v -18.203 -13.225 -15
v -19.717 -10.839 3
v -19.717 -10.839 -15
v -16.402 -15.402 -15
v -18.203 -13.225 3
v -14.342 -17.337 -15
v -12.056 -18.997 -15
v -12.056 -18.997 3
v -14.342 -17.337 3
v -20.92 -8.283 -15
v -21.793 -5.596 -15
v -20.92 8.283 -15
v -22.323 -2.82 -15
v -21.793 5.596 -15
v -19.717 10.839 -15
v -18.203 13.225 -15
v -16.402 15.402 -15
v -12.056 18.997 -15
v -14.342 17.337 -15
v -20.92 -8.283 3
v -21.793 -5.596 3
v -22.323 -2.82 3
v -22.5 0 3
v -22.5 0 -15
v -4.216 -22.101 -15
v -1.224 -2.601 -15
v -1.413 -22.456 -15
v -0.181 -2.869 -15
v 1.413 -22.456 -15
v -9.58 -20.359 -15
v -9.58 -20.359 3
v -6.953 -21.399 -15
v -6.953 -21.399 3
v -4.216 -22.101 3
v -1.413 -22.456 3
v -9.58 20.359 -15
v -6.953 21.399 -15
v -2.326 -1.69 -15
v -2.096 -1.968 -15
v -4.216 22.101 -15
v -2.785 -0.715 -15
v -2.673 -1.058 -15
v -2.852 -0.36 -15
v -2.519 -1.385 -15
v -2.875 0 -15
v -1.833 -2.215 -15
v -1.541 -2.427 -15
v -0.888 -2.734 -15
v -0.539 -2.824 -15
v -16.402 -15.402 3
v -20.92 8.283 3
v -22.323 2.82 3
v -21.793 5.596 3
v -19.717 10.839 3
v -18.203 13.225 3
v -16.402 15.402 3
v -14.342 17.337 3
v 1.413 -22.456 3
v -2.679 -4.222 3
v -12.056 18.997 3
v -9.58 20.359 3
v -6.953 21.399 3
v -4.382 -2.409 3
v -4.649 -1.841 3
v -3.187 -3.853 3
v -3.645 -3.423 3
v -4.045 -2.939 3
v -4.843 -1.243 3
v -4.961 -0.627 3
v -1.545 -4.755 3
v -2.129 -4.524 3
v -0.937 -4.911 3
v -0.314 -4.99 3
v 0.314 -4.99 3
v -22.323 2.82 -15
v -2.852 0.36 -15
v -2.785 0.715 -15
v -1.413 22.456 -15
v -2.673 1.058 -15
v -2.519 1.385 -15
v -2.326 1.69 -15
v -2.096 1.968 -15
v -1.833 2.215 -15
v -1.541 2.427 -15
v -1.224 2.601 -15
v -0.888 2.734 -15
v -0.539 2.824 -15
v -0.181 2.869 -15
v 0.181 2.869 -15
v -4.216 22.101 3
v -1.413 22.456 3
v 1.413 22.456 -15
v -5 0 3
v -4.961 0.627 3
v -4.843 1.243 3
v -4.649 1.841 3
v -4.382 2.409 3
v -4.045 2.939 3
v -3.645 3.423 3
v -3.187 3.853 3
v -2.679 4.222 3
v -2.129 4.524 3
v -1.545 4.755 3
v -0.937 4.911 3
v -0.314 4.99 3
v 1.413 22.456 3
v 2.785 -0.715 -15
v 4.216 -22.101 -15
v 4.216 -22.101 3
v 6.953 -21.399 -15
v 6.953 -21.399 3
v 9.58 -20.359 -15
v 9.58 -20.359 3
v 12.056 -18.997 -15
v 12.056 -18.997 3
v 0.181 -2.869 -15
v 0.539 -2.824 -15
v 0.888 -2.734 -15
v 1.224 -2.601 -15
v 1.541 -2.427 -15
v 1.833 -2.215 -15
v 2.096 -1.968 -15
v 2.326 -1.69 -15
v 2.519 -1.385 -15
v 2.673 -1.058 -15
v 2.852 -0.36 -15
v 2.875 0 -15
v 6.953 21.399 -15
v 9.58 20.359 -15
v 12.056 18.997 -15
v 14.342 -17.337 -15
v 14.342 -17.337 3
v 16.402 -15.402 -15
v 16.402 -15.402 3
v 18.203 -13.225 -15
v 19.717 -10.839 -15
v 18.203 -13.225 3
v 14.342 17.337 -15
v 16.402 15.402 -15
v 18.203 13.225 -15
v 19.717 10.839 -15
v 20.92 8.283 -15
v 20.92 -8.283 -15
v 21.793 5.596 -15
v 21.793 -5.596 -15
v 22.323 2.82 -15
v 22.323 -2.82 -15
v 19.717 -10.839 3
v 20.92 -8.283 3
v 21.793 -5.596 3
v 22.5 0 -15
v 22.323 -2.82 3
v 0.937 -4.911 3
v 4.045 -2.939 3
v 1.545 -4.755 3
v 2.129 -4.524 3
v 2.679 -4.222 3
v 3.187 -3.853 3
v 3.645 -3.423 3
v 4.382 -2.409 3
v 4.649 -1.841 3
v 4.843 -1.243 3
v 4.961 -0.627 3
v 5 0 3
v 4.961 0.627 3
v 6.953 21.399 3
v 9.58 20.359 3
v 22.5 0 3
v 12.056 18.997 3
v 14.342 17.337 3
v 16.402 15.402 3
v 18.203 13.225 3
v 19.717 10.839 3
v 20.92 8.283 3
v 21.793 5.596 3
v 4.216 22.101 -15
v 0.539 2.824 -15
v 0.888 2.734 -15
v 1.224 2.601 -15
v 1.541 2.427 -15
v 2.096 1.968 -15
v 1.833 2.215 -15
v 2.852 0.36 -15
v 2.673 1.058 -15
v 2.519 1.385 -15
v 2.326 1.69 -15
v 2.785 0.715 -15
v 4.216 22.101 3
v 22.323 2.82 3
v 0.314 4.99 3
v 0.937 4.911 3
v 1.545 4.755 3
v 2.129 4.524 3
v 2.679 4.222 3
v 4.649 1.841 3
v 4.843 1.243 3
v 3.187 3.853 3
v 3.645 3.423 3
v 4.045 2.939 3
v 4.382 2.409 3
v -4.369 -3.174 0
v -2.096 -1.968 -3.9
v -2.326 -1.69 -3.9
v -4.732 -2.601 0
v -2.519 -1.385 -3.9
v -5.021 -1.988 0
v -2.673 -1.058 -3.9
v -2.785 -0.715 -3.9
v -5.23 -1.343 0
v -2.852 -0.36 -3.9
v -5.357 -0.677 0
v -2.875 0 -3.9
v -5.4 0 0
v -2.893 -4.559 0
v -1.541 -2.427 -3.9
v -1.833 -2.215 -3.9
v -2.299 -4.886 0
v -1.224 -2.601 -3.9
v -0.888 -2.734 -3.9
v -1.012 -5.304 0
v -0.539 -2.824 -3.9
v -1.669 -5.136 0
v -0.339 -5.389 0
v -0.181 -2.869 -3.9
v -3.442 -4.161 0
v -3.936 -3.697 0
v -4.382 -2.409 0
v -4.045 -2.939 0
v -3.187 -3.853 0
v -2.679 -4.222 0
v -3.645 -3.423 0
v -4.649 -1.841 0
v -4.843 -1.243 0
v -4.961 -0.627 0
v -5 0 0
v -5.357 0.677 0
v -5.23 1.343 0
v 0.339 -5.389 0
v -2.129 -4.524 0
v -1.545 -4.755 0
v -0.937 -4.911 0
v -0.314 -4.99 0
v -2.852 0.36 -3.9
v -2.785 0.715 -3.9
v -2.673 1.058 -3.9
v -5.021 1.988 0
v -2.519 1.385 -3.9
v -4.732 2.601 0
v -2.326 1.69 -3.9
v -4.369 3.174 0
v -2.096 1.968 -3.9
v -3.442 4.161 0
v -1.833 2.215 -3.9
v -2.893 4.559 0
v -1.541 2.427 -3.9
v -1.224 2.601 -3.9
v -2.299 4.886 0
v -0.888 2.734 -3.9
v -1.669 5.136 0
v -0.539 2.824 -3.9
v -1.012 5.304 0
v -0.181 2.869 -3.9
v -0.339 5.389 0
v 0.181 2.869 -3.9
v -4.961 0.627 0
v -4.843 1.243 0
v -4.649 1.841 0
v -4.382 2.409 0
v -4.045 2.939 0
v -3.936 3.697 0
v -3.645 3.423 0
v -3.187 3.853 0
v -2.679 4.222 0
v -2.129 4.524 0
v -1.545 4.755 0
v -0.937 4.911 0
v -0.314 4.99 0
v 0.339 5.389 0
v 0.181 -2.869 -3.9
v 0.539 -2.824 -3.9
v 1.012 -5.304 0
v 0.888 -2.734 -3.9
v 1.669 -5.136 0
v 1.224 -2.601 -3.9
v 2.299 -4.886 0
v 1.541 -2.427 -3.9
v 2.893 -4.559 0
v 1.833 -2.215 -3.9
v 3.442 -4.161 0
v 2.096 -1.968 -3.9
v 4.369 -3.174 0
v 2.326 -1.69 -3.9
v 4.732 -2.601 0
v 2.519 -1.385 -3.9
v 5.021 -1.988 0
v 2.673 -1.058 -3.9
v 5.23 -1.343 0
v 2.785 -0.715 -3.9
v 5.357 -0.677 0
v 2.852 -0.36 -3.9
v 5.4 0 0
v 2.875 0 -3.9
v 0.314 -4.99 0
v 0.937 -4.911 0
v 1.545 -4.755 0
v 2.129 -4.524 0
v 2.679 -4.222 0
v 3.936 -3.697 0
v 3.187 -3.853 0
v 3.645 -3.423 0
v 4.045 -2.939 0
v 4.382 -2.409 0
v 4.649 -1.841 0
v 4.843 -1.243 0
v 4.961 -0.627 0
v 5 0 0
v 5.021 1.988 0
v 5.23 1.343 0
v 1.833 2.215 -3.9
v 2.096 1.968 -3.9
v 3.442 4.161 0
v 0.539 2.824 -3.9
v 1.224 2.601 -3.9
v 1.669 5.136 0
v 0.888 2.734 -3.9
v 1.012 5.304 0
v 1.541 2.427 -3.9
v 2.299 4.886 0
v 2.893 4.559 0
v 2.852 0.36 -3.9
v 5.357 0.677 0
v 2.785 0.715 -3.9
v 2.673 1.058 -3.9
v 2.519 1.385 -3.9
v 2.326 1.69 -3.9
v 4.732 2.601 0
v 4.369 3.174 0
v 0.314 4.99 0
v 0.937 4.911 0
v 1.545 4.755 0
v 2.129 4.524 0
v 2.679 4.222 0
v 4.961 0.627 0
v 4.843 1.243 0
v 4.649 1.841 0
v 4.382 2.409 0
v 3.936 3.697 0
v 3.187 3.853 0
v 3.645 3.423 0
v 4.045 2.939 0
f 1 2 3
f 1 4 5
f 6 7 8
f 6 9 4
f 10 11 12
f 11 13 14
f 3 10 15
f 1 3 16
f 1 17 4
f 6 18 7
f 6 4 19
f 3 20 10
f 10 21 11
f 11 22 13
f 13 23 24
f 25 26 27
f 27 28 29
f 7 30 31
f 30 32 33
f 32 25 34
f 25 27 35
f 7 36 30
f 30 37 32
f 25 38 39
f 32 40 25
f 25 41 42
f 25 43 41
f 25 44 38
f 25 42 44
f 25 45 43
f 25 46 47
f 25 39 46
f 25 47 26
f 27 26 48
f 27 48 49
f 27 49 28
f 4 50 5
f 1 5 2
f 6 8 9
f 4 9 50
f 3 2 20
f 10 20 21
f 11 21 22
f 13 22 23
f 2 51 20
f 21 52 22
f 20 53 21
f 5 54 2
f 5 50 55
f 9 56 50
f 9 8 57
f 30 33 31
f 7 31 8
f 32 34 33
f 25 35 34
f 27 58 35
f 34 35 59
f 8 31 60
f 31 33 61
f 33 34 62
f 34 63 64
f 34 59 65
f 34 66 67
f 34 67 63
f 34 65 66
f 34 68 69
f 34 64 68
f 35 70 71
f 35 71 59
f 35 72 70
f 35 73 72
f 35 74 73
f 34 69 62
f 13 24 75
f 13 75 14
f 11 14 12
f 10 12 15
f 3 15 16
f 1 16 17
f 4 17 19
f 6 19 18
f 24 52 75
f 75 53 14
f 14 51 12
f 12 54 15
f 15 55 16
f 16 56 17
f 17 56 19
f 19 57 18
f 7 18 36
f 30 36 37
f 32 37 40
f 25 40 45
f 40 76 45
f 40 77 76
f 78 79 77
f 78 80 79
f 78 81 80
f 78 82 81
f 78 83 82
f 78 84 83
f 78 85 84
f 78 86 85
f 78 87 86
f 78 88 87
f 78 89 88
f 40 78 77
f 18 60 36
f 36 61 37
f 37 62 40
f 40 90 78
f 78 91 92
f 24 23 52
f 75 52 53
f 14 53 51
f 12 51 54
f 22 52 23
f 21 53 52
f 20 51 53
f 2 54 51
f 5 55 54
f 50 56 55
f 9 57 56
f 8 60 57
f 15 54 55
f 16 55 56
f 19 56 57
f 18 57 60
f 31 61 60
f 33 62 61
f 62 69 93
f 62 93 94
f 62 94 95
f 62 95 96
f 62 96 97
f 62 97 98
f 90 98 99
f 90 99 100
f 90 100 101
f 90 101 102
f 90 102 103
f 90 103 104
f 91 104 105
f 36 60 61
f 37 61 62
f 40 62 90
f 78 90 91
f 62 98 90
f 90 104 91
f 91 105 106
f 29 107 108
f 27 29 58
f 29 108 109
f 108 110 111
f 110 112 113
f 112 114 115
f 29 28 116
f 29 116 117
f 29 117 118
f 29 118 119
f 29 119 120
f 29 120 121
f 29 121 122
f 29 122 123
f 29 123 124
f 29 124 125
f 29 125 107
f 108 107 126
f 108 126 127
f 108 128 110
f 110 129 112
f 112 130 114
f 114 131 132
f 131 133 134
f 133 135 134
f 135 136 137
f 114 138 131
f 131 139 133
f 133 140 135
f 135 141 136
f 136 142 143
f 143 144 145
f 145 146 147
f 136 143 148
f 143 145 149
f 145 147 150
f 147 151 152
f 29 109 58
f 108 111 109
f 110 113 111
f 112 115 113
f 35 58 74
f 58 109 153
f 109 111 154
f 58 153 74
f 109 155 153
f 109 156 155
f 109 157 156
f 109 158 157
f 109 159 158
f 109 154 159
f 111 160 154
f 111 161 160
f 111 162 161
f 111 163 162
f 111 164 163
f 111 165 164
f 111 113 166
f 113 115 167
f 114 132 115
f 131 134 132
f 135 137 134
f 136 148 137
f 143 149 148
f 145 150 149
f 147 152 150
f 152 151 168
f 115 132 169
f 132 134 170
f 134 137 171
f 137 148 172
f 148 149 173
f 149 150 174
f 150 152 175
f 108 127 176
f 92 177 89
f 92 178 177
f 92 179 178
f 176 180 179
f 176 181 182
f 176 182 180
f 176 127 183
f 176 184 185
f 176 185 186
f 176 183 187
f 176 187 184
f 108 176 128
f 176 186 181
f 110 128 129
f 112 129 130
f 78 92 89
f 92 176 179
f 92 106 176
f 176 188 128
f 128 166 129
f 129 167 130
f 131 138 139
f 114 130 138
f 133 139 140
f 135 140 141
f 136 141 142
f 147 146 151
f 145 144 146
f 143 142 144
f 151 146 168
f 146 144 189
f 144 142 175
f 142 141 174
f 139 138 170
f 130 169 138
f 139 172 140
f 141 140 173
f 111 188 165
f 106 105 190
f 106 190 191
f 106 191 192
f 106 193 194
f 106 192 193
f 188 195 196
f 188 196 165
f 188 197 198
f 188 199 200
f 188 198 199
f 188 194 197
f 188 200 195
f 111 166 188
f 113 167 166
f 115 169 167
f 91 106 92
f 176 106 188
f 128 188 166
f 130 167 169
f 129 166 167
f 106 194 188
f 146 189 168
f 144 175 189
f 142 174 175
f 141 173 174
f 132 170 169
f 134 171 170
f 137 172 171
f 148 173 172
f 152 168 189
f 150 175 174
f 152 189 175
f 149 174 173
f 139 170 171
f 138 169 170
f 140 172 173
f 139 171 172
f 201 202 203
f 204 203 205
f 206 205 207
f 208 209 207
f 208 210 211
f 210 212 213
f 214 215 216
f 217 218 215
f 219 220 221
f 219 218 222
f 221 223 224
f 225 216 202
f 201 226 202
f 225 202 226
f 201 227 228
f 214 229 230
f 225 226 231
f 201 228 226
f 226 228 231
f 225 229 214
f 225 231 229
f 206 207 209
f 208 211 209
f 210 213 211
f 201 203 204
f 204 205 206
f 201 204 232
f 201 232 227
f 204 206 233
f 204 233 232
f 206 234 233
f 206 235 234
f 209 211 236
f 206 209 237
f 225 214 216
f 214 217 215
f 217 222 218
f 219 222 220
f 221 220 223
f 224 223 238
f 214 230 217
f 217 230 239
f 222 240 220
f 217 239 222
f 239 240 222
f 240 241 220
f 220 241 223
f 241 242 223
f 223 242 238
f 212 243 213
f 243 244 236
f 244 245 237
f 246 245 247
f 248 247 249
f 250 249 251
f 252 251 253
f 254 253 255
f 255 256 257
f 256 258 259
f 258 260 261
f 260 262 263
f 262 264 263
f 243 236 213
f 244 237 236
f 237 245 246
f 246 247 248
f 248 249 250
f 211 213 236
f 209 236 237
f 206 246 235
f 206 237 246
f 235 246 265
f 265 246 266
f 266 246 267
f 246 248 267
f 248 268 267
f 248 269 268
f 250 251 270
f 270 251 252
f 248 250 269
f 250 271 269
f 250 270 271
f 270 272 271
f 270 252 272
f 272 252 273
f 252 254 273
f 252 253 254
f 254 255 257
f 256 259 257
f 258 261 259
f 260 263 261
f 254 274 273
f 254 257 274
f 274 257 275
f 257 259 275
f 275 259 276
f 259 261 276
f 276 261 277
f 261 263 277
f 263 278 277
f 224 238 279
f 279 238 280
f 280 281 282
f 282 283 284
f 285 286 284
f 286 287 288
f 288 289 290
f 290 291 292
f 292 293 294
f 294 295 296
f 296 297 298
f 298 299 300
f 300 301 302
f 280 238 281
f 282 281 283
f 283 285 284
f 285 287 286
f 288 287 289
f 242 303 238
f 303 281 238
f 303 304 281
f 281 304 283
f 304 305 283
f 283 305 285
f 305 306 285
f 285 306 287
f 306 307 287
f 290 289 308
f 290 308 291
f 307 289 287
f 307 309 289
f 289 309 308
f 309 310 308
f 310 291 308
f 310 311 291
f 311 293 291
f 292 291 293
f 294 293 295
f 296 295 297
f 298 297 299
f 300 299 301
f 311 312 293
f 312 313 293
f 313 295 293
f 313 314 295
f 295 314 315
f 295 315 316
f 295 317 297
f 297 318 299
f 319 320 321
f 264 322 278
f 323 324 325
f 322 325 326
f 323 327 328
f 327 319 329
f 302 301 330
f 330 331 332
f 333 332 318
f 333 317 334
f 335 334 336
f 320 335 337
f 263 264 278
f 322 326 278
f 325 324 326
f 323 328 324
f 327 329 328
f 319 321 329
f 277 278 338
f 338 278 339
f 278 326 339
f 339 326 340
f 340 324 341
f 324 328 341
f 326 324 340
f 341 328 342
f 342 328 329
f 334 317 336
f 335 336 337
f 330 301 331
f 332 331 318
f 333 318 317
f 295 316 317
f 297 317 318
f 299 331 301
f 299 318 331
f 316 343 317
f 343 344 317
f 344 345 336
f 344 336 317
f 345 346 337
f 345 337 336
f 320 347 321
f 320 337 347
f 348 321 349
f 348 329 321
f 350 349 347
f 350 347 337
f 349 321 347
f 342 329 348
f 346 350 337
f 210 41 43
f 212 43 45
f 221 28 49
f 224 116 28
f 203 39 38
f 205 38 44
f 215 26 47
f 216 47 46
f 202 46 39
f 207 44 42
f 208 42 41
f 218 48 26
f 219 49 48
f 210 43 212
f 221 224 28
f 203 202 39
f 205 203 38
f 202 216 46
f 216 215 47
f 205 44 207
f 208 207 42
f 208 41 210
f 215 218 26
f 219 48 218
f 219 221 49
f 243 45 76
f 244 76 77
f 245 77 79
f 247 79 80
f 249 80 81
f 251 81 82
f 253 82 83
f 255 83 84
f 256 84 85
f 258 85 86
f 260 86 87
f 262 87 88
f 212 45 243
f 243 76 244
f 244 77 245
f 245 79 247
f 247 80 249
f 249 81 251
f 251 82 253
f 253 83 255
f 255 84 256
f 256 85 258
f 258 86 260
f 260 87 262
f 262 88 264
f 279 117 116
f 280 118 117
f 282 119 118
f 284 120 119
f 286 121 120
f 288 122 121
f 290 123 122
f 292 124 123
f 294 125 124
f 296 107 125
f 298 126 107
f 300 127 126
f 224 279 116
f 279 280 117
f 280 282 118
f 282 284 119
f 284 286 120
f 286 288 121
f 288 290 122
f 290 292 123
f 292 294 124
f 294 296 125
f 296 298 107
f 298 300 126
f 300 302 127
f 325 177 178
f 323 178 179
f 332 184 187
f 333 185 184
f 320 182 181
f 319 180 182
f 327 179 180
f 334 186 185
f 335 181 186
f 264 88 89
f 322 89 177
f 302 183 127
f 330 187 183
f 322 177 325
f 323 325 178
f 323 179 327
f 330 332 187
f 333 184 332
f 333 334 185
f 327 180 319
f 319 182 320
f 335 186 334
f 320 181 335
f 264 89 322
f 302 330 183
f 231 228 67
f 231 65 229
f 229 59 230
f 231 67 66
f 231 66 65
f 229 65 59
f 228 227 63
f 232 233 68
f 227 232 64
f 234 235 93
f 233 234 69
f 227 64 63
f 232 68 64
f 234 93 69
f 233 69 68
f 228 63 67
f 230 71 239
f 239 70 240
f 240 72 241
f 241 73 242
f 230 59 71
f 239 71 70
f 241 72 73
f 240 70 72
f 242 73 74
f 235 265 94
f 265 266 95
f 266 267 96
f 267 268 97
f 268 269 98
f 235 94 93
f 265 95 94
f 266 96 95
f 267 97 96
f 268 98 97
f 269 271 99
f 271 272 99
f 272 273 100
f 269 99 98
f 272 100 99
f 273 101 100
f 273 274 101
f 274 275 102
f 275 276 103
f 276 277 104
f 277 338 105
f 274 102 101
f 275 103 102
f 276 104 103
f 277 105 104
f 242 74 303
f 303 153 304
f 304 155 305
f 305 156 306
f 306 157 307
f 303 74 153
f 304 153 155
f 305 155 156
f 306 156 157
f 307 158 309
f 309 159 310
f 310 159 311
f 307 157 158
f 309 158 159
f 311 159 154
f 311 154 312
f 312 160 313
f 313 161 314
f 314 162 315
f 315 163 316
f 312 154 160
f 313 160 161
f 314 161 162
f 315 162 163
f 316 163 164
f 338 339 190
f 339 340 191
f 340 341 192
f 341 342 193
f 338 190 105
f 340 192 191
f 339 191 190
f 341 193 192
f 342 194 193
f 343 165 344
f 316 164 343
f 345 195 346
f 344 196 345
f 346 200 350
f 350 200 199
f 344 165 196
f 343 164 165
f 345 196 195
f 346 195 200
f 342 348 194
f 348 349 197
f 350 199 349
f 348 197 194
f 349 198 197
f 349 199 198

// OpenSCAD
$fn = 50;


difference() {
	union() {
		translate(v = [0, 0, -15.0000000000]) {
			cylinder(h = 18, r = 22.5000000000);
		}
		#translate(v = [0, 0, -18.0000000000]) {
			cylinder(h = 18, r = 2.8750000000);
		}
	}
	union() {
		translate(v = [0, 0, 0]) {
			rotate(a = [0, 0, 0]) {
				difference() {
					union() {
						translate(v = [0, 0, -18.0000000000]) {
							cylinder(h = 18, r = 2.6000000000);
						}
						translate(v = [0, 0, -3.9000000000]) {
							cylinder(h = 3.9000000000, r1 = 2.8750000000, r2 = 5.4000000000);
						}
						translate(v = [0, 0, -18.0000000000]) {
							cylinder(h = 18, r = 2.8750000000);
						}
						translate(v = [0, 0, -18.0000000000]) {
							cylinder(h = 18, r = 2.6000000000);
						}
					}
					union();
				}
			}
		}
		#cylinder(h = 3, r = 5.0000000000);
	}
}
